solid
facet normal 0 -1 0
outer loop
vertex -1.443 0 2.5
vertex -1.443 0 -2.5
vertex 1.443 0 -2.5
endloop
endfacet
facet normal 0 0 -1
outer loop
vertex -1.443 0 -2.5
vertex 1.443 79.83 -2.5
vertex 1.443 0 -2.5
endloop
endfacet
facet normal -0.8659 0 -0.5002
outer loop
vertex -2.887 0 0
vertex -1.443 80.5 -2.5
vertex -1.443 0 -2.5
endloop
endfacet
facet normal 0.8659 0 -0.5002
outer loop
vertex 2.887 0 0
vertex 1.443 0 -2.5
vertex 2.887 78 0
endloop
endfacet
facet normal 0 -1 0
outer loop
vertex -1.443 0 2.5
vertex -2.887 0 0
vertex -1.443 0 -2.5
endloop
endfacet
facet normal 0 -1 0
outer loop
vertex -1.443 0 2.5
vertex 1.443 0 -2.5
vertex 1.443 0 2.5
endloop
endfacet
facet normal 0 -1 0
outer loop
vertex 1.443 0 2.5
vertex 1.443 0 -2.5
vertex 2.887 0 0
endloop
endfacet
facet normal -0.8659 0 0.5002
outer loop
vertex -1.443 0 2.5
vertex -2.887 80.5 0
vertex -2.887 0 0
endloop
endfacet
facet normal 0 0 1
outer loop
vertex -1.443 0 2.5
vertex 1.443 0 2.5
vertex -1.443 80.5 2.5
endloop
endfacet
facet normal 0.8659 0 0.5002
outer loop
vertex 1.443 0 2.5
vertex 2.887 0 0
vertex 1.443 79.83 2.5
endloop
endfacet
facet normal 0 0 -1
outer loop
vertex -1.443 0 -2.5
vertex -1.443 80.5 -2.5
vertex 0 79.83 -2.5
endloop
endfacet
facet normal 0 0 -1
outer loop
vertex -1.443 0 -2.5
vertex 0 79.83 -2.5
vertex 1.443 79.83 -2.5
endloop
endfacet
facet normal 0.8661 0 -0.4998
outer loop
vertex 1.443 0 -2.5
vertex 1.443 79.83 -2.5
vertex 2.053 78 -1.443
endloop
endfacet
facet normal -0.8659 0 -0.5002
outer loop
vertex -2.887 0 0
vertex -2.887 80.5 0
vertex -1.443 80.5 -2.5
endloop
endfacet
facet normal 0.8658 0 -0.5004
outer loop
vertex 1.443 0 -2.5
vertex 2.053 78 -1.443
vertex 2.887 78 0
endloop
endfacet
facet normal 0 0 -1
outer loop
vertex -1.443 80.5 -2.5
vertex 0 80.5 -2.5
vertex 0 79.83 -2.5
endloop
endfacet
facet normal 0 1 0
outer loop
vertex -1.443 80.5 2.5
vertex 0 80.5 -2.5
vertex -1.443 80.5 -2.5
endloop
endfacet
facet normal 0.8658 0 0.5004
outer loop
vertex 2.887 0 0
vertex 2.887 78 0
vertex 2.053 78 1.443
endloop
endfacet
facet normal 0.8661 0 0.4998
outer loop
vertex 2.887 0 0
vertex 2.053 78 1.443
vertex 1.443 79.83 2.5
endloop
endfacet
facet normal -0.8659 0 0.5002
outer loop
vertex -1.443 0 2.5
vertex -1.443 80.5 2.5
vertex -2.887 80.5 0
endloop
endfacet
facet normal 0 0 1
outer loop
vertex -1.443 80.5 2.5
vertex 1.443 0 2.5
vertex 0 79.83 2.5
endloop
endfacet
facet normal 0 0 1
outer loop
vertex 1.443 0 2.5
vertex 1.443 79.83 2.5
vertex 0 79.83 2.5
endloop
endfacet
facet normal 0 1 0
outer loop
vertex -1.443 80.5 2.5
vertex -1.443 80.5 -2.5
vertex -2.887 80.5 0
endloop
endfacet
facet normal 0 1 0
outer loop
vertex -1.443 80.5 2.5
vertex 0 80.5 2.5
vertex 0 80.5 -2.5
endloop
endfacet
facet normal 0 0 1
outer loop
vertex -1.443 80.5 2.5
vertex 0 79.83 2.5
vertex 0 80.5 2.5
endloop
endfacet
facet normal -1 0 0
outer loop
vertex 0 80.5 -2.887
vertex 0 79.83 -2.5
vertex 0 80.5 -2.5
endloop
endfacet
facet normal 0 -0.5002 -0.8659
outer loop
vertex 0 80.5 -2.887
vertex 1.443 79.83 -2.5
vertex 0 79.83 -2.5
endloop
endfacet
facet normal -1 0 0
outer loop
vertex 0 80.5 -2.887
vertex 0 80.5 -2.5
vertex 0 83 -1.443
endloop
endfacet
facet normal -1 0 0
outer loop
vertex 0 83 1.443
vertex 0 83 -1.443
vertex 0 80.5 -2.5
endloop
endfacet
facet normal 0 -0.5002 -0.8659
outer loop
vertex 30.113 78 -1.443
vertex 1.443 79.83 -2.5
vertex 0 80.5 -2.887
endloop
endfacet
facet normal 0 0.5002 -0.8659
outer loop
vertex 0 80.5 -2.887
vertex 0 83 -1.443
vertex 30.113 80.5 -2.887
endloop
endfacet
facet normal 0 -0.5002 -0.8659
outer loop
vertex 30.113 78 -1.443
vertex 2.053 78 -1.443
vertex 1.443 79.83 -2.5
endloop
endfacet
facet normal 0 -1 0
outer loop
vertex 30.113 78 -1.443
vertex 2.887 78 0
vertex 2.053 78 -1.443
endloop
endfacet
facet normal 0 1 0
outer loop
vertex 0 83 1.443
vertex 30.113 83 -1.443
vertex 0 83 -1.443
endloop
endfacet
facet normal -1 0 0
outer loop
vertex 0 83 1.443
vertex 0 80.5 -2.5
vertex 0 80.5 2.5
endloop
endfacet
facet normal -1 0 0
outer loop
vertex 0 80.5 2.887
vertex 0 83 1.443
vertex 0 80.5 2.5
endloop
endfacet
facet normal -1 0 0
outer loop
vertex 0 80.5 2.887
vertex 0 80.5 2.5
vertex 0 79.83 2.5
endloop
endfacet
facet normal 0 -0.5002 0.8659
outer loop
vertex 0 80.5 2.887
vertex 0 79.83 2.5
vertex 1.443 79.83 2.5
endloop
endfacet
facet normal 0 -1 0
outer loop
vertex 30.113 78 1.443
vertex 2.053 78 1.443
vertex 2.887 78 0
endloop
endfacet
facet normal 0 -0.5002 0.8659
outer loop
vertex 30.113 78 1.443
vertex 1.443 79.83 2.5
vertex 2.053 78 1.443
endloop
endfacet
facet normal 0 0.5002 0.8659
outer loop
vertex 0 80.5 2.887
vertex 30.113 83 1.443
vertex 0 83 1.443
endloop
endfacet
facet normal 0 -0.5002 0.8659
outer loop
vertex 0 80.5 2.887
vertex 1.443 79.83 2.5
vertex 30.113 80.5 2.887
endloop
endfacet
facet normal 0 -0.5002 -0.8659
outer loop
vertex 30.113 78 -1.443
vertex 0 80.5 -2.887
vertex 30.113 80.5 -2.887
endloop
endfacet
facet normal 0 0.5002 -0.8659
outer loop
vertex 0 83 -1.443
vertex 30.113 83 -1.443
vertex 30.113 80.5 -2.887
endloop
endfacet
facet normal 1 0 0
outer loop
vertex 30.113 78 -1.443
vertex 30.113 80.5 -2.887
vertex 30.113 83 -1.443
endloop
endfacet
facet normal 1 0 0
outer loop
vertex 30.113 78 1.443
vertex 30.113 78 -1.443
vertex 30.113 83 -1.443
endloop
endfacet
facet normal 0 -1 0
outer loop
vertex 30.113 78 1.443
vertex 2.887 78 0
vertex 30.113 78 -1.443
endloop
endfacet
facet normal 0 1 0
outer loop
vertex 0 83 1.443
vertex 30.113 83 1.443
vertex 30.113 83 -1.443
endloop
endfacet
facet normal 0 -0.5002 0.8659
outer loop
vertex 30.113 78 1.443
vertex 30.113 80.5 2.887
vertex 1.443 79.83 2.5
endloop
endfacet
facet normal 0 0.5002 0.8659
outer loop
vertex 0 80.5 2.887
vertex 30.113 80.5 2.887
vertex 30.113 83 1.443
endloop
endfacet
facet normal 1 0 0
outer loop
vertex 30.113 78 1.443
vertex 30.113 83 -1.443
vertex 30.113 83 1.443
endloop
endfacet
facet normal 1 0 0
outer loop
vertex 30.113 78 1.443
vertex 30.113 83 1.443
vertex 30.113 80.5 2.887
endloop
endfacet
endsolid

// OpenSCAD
// 5 mm metric hex key
// The holder specifies the hex size. Arm lengths follow the Wiha 350 short series as a representative example. The holder source leaves the key manufacturer unspecified. The elbow is simplified.
// Units: mm
$fn = 64;
union() {
    translate([0, 0, 0]) rotate([-90, 0, 0])
        cylinder(h=80.5, r1=2.886751345948129, r2=2.886751345948129, $fn=6);
    translate([0, 80.5, 0]) rotate([0, 90, 0])
        cylinder(h=30.113248654051873, r1=2.886751345948129, r2=2.886751345948129, $fn=6);
}
